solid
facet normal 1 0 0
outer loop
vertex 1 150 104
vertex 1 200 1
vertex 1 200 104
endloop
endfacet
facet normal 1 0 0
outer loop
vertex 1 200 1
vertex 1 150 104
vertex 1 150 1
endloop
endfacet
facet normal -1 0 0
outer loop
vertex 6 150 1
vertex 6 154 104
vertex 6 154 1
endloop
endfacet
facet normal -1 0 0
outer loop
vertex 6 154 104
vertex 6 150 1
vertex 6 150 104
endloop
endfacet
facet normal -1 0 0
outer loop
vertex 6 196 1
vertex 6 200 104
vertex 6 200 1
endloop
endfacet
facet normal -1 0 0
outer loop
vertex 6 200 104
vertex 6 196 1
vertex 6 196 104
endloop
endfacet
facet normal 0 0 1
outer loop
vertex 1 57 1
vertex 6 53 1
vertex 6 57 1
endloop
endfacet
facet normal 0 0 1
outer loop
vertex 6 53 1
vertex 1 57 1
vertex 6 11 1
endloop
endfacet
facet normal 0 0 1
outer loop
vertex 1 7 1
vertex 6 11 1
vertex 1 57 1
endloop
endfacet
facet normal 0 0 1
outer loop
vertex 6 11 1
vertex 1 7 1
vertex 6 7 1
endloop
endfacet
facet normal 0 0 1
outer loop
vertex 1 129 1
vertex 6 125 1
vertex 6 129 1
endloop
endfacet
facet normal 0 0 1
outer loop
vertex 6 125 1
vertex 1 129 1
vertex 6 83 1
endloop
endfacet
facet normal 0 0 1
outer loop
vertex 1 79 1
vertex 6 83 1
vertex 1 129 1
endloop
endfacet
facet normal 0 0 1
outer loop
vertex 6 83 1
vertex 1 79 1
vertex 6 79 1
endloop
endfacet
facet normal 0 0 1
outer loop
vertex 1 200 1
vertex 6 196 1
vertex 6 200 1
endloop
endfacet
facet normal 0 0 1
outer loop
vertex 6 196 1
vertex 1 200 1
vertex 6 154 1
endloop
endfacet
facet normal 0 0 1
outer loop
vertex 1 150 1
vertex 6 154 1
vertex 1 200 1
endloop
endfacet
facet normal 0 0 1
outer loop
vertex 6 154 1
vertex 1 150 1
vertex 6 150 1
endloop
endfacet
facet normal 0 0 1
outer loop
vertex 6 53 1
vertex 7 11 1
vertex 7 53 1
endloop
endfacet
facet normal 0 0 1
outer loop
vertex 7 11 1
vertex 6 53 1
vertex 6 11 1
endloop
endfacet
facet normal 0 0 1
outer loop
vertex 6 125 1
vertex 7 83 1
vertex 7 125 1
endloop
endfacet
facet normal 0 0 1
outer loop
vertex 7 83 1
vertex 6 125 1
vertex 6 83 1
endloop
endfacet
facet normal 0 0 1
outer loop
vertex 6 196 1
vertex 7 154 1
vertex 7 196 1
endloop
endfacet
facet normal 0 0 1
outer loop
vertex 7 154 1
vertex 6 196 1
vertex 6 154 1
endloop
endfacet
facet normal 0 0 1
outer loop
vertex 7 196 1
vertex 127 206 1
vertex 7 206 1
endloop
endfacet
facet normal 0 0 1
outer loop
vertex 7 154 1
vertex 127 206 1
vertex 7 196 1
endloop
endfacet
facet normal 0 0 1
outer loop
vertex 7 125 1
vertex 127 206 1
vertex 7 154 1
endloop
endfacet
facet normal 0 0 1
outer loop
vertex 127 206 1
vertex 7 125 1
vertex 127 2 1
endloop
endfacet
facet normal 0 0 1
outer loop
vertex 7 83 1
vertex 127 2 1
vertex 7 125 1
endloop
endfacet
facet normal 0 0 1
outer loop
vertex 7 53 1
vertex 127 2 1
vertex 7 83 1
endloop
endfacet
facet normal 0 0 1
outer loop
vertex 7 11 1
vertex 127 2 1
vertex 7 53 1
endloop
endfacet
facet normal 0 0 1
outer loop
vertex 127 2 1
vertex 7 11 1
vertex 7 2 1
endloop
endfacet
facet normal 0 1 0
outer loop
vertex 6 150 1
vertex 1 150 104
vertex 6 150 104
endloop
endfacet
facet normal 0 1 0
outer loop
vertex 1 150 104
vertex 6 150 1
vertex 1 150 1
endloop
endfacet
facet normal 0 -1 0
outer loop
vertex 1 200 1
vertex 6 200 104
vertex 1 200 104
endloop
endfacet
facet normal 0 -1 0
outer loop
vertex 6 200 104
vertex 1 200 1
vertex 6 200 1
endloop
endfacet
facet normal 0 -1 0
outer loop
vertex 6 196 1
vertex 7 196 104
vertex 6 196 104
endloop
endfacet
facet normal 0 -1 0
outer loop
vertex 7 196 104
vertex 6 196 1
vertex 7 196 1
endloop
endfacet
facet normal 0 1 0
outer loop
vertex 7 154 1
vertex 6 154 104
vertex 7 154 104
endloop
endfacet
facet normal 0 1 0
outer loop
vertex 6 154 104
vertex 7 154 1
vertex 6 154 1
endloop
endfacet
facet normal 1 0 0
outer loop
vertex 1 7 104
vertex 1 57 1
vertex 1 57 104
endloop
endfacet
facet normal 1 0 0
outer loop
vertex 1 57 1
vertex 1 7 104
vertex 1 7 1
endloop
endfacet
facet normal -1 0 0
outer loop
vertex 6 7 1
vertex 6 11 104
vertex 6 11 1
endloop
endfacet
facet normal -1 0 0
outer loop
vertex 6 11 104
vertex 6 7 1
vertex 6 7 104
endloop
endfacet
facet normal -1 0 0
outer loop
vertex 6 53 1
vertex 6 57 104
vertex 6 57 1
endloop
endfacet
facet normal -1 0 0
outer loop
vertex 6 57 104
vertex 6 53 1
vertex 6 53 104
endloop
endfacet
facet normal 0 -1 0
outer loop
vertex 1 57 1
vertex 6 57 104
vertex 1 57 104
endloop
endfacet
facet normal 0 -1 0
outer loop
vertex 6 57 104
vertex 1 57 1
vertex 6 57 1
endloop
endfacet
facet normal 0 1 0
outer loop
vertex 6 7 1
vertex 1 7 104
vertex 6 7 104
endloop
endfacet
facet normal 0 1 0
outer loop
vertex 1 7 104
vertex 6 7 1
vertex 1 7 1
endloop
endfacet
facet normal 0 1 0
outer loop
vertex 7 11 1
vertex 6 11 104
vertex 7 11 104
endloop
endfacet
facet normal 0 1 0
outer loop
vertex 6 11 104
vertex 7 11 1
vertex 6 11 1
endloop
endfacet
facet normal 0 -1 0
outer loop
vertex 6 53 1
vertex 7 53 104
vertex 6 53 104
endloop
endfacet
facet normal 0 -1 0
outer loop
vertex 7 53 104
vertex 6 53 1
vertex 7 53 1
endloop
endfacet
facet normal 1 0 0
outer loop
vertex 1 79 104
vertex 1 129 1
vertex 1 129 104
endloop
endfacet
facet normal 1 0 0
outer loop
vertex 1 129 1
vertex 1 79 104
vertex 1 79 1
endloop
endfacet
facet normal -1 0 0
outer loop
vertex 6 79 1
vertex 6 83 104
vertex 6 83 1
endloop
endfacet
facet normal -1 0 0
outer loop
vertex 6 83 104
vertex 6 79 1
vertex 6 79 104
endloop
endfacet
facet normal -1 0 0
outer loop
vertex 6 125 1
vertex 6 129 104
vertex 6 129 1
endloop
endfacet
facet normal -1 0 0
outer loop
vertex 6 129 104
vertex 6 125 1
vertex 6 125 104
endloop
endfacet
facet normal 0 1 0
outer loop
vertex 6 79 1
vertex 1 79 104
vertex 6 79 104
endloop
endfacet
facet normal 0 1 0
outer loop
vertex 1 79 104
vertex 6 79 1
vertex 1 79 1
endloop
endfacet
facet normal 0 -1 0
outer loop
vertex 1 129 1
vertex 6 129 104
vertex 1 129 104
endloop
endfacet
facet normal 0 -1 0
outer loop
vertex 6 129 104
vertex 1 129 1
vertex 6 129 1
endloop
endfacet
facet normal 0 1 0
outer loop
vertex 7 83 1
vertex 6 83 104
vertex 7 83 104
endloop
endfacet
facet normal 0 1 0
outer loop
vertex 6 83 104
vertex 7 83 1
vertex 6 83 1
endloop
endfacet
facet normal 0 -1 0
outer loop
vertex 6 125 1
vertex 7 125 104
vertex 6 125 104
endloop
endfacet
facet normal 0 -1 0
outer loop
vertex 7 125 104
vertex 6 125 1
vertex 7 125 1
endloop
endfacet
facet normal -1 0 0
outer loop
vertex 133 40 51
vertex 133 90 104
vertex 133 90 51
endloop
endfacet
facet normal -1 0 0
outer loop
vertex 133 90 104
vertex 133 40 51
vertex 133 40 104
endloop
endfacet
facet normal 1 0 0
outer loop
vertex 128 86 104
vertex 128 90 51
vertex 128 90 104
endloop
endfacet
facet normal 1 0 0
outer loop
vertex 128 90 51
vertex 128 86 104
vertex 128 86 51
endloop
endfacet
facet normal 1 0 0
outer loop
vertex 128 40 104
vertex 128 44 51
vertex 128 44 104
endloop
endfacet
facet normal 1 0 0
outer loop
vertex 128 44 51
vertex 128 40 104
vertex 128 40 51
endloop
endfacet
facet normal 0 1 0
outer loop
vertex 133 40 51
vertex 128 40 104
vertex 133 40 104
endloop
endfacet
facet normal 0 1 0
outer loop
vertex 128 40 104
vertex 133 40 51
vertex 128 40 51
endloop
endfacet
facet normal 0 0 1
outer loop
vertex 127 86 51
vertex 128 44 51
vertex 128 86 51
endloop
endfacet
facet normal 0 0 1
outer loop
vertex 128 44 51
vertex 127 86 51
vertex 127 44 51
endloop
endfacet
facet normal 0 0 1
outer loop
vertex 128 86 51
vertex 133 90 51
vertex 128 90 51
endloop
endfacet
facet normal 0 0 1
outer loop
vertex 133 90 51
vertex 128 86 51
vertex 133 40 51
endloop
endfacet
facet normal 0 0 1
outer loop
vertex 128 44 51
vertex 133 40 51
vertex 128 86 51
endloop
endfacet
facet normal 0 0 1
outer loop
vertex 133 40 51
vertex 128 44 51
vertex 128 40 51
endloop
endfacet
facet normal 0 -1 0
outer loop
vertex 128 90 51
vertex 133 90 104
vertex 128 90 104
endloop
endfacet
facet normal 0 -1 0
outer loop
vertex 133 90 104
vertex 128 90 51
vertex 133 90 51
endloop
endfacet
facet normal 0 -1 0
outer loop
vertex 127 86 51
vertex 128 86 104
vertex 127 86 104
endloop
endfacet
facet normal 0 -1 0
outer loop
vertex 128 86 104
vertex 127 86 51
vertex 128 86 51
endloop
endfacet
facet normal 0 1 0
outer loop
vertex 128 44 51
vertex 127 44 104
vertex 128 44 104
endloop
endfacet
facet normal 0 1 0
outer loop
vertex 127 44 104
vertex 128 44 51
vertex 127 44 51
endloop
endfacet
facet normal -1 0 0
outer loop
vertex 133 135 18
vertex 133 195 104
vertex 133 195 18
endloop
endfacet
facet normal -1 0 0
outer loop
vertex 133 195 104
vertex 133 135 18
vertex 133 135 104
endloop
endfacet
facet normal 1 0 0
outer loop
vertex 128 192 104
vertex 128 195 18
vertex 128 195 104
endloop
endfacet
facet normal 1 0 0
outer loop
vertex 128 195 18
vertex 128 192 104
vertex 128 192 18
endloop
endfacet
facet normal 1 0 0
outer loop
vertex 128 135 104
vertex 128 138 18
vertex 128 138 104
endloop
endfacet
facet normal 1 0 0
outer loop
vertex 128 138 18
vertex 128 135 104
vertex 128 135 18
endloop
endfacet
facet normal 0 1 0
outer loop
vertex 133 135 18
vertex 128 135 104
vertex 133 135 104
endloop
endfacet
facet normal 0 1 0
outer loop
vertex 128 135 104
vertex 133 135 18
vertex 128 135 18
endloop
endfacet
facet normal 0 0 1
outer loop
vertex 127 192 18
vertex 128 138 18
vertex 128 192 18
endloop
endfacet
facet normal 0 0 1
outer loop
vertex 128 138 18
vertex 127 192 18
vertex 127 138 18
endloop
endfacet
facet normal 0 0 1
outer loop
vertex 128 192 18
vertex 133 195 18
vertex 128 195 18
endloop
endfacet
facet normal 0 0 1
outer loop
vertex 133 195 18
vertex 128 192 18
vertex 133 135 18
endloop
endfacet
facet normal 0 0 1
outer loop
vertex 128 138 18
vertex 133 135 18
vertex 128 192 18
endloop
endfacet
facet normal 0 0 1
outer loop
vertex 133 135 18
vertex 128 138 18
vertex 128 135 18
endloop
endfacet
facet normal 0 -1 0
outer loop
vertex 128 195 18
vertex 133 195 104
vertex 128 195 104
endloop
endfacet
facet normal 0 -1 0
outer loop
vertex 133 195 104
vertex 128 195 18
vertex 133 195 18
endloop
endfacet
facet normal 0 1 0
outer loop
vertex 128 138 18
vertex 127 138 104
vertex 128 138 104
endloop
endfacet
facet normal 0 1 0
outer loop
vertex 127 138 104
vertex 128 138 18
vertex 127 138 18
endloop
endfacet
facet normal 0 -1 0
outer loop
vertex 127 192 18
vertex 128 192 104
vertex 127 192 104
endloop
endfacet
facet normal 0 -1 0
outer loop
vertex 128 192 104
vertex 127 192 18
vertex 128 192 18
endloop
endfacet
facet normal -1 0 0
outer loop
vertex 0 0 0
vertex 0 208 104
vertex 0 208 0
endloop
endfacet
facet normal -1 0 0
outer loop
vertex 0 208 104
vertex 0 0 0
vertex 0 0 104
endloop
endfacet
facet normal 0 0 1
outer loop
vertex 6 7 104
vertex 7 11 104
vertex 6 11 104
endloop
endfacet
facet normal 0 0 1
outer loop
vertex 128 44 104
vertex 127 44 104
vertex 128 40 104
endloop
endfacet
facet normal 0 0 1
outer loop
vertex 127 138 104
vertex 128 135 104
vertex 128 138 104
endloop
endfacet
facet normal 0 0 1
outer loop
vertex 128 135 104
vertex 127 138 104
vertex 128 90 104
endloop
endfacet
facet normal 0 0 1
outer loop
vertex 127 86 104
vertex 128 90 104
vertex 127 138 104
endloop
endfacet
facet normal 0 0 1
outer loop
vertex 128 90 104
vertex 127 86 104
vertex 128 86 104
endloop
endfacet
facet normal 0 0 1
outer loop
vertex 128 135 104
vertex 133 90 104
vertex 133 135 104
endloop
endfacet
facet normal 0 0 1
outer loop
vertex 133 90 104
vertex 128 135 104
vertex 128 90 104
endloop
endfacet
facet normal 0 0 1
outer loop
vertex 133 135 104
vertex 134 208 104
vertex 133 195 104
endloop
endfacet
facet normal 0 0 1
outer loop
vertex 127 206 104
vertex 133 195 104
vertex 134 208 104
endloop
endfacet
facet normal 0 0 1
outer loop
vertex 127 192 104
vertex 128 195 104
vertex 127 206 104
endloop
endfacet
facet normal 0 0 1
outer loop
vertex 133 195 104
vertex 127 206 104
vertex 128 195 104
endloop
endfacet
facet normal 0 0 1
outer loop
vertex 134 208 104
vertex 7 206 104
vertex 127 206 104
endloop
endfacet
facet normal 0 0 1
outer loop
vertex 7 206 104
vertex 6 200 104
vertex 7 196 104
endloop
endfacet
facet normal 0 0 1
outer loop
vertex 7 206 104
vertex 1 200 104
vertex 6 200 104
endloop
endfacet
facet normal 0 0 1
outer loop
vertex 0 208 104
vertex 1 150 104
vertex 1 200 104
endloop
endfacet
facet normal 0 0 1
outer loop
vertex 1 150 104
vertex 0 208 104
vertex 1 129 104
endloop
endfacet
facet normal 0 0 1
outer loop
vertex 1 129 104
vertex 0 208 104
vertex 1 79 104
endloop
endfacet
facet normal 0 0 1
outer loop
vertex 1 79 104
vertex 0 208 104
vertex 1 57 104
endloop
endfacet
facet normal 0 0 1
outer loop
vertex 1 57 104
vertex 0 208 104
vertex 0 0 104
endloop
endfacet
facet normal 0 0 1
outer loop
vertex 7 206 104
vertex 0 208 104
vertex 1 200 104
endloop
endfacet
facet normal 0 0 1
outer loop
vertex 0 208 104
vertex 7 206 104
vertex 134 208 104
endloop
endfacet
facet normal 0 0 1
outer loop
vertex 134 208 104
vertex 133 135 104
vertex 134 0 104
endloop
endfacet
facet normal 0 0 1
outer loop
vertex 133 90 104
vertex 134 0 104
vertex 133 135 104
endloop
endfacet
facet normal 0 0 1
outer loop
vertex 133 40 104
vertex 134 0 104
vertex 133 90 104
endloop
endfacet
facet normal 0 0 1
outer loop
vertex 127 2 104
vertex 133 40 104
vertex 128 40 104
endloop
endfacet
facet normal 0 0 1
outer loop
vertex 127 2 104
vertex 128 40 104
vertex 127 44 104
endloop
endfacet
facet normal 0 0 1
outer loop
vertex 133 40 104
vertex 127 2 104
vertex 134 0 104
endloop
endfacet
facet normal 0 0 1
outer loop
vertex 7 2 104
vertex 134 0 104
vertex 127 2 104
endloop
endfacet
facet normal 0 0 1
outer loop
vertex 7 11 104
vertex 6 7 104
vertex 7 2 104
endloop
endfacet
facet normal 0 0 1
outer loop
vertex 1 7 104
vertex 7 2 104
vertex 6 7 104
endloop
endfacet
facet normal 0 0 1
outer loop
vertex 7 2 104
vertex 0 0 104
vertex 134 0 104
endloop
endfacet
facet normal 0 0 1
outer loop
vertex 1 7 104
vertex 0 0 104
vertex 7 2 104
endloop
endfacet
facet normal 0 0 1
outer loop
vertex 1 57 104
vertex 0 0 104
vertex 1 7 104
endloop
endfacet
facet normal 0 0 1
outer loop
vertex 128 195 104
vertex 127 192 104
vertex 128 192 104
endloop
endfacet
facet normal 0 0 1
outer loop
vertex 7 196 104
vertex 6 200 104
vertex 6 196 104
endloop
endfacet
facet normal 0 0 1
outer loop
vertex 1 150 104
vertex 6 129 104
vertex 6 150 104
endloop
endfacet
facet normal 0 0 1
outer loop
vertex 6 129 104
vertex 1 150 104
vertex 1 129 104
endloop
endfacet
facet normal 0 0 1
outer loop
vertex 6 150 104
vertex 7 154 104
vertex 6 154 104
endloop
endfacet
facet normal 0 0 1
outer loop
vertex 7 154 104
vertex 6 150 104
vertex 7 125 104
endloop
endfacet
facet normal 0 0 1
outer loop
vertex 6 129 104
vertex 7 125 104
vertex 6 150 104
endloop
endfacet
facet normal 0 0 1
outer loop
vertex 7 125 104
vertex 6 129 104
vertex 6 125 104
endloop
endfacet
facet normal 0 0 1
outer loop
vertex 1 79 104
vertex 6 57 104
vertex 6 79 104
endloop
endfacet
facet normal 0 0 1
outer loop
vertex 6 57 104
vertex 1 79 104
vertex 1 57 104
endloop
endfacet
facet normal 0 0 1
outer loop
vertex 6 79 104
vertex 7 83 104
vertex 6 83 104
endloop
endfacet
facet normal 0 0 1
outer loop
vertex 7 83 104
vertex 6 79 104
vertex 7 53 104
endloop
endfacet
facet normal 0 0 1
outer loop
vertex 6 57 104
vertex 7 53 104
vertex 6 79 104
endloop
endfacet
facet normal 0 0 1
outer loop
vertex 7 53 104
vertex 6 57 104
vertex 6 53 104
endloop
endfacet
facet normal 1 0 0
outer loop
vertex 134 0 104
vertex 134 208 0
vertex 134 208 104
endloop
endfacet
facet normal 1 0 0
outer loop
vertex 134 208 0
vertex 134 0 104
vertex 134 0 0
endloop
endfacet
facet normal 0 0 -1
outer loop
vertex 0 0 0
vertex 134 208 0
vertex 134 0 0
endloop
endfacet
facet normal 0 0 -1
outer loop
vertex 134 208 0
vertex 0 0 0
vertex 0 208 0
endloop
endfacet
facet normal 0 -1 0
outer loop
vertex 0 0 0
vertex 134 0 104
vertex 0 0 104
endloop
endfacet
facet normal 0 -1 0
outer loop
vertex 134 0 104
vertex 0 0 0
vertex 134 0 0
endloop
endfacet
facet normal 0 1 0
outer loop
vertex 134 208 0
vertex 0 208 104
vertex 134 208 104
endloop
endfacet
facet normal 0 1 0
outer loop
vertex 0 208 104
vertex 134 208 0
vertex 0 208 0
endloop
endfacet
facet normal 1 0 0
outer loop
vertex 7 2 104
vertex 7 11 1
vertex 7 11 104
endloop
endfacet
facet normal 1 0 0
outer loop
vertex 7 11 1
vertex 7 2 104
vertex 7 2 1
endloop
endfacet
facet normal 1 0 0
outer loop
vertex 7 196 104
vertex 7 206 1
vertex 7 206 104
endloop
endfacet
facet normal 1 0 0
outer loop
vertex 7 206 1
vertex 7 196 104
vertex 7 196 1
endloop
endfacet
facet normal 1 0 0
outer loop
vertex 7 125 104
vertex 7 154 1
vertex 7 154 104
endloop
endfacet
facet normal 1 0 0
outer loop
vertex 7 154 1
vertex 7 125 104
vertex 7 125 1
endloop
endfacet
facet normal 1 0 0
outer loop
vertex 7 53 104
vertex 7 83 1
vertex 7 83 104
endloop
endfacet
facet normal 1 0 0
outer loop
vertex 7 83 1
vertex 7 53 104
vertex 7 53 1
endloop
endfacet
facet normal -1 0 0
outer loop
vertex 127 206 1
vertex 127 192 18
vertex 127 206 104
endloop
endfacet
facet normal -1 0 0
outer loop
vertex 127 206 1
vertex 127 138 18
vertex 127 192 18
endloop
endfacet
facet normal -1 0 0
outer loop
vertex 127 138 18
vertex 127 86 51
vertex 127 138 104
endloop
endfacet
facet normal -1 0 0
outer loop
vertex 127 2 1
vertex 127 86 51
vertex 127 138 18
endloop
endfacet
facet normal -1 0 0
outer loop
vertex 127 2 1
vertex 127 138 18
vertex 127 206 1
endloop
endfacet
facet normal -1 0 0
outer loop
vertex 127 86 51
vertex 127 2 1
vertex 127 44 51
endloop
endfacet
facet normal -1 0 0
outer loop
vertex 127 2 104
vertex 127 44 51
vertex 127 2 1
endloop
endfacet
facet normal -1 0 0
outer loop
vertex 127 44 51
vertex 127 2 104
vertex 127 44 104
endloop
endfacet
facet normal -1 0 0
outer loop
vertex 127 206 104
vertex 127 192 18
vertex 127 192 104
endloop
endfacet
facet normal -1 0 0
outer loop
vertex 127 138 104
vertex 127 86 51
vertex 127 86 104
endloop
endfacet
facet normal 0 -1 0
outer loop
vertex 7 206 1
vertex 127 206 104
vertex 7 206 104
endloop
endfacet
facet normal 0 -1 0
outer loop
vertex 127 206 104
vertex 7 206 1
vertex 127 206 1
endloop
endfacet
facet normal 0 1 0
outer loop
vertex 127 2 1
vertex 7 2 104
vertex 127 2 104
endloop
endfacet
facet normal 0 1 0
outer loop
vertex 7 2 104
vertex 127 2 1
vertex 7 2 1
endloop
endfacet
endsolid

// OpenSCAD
BOX_X = 134;
BOX_Y = 208;
BOX_Z = 104;

THICK = 1;
MARGIN = 6;


MODEL_W = 5;
MODEL_L = 50;
MODEL_M = 4;

big_MODEL_W = 5;
big_MODEL_L = 60;
big_MODEL_M = 3;

difference() {
    cube(size = [
        BOX_X,
        BOX_Y, 
        BOX_Z]);

    translate([
        MARGIN + THICK, 
        THICK * 2, 
        THICK]) {
            
        cube(size = [
            BOX_X - (MARGIN * 2) - (THICK * 2),
            BOX_Y - (THICK * 4),
            BOX_Z]);
    }

    modelSlot(THICK, 150, 0);
    modelSlot(THICK, 7, 0);

    modelSlot(THICK, ((BOX_Y / 2) - (MODEL_L / 2)), 0);

    small_modelSlot(THICK - BOX_X, -90, 180);
    big_modelSlot(THICK - BOX_X, -195, 180);
    // modelSlot(THICK - BOX_X, -((BOX_Y / 2) + big_MODEL_L + 1), 180);



    
    //modelSlot(90, 0, 0);
    //modelSlot(180, 0, 0);
    //modelSlot(270, 0, 0);
}

module modelSlot(x, y, rot) {
    rotate([0, 0, rot]) {
        translate([x, y, THICK]) {
            cube(size = [
                MODEL_W,
                MODEL_L,
                BOX_Z]);
        }        
        
        translate([x + MODEL_M, y + MODEL_M, THICK]) {
            cube(size = [
                MODEL_W + 2,
                MODEL_L - (MODEL_M * 2),
                BOX_Z]);
        }
    }
}

module small_modelSlot(x, y, rot) {
    rotate([0, 0, rot]) {
        translate([x, y, THICK + 50]) {
            cube(size = [
                MODEL_W,
                MODEL_L,
                BOX_Z - 50]);
        }        
        
        translate([x + MODEL_M, y + MODEL_M, THICK + 50]) {
            cube(size = [
                MODEL_W + 2,
                MODEL_L - (MODEL_M * 2),
                BOX_Z - 50]);
        }
    }
}

module big_modelSlot(x, y, rot) {
    rotate([0, 0, rot]) {
        translate([x, y, THICK + 17]) {
            cube(size = [
                big_MODEL_W,
                big_MODEL_L,
                BOX_Z - 17]);
        }        
        
        translate([x + big_MODEL_M, y + big_MODEL_M, THICK + 17]) {
            cube(size = [
                big_MODEL_W + 2,
                big_MODEL_L - (big_MODEL_M * 2),
                BOX_Z - 17]);
        }
    }
}
